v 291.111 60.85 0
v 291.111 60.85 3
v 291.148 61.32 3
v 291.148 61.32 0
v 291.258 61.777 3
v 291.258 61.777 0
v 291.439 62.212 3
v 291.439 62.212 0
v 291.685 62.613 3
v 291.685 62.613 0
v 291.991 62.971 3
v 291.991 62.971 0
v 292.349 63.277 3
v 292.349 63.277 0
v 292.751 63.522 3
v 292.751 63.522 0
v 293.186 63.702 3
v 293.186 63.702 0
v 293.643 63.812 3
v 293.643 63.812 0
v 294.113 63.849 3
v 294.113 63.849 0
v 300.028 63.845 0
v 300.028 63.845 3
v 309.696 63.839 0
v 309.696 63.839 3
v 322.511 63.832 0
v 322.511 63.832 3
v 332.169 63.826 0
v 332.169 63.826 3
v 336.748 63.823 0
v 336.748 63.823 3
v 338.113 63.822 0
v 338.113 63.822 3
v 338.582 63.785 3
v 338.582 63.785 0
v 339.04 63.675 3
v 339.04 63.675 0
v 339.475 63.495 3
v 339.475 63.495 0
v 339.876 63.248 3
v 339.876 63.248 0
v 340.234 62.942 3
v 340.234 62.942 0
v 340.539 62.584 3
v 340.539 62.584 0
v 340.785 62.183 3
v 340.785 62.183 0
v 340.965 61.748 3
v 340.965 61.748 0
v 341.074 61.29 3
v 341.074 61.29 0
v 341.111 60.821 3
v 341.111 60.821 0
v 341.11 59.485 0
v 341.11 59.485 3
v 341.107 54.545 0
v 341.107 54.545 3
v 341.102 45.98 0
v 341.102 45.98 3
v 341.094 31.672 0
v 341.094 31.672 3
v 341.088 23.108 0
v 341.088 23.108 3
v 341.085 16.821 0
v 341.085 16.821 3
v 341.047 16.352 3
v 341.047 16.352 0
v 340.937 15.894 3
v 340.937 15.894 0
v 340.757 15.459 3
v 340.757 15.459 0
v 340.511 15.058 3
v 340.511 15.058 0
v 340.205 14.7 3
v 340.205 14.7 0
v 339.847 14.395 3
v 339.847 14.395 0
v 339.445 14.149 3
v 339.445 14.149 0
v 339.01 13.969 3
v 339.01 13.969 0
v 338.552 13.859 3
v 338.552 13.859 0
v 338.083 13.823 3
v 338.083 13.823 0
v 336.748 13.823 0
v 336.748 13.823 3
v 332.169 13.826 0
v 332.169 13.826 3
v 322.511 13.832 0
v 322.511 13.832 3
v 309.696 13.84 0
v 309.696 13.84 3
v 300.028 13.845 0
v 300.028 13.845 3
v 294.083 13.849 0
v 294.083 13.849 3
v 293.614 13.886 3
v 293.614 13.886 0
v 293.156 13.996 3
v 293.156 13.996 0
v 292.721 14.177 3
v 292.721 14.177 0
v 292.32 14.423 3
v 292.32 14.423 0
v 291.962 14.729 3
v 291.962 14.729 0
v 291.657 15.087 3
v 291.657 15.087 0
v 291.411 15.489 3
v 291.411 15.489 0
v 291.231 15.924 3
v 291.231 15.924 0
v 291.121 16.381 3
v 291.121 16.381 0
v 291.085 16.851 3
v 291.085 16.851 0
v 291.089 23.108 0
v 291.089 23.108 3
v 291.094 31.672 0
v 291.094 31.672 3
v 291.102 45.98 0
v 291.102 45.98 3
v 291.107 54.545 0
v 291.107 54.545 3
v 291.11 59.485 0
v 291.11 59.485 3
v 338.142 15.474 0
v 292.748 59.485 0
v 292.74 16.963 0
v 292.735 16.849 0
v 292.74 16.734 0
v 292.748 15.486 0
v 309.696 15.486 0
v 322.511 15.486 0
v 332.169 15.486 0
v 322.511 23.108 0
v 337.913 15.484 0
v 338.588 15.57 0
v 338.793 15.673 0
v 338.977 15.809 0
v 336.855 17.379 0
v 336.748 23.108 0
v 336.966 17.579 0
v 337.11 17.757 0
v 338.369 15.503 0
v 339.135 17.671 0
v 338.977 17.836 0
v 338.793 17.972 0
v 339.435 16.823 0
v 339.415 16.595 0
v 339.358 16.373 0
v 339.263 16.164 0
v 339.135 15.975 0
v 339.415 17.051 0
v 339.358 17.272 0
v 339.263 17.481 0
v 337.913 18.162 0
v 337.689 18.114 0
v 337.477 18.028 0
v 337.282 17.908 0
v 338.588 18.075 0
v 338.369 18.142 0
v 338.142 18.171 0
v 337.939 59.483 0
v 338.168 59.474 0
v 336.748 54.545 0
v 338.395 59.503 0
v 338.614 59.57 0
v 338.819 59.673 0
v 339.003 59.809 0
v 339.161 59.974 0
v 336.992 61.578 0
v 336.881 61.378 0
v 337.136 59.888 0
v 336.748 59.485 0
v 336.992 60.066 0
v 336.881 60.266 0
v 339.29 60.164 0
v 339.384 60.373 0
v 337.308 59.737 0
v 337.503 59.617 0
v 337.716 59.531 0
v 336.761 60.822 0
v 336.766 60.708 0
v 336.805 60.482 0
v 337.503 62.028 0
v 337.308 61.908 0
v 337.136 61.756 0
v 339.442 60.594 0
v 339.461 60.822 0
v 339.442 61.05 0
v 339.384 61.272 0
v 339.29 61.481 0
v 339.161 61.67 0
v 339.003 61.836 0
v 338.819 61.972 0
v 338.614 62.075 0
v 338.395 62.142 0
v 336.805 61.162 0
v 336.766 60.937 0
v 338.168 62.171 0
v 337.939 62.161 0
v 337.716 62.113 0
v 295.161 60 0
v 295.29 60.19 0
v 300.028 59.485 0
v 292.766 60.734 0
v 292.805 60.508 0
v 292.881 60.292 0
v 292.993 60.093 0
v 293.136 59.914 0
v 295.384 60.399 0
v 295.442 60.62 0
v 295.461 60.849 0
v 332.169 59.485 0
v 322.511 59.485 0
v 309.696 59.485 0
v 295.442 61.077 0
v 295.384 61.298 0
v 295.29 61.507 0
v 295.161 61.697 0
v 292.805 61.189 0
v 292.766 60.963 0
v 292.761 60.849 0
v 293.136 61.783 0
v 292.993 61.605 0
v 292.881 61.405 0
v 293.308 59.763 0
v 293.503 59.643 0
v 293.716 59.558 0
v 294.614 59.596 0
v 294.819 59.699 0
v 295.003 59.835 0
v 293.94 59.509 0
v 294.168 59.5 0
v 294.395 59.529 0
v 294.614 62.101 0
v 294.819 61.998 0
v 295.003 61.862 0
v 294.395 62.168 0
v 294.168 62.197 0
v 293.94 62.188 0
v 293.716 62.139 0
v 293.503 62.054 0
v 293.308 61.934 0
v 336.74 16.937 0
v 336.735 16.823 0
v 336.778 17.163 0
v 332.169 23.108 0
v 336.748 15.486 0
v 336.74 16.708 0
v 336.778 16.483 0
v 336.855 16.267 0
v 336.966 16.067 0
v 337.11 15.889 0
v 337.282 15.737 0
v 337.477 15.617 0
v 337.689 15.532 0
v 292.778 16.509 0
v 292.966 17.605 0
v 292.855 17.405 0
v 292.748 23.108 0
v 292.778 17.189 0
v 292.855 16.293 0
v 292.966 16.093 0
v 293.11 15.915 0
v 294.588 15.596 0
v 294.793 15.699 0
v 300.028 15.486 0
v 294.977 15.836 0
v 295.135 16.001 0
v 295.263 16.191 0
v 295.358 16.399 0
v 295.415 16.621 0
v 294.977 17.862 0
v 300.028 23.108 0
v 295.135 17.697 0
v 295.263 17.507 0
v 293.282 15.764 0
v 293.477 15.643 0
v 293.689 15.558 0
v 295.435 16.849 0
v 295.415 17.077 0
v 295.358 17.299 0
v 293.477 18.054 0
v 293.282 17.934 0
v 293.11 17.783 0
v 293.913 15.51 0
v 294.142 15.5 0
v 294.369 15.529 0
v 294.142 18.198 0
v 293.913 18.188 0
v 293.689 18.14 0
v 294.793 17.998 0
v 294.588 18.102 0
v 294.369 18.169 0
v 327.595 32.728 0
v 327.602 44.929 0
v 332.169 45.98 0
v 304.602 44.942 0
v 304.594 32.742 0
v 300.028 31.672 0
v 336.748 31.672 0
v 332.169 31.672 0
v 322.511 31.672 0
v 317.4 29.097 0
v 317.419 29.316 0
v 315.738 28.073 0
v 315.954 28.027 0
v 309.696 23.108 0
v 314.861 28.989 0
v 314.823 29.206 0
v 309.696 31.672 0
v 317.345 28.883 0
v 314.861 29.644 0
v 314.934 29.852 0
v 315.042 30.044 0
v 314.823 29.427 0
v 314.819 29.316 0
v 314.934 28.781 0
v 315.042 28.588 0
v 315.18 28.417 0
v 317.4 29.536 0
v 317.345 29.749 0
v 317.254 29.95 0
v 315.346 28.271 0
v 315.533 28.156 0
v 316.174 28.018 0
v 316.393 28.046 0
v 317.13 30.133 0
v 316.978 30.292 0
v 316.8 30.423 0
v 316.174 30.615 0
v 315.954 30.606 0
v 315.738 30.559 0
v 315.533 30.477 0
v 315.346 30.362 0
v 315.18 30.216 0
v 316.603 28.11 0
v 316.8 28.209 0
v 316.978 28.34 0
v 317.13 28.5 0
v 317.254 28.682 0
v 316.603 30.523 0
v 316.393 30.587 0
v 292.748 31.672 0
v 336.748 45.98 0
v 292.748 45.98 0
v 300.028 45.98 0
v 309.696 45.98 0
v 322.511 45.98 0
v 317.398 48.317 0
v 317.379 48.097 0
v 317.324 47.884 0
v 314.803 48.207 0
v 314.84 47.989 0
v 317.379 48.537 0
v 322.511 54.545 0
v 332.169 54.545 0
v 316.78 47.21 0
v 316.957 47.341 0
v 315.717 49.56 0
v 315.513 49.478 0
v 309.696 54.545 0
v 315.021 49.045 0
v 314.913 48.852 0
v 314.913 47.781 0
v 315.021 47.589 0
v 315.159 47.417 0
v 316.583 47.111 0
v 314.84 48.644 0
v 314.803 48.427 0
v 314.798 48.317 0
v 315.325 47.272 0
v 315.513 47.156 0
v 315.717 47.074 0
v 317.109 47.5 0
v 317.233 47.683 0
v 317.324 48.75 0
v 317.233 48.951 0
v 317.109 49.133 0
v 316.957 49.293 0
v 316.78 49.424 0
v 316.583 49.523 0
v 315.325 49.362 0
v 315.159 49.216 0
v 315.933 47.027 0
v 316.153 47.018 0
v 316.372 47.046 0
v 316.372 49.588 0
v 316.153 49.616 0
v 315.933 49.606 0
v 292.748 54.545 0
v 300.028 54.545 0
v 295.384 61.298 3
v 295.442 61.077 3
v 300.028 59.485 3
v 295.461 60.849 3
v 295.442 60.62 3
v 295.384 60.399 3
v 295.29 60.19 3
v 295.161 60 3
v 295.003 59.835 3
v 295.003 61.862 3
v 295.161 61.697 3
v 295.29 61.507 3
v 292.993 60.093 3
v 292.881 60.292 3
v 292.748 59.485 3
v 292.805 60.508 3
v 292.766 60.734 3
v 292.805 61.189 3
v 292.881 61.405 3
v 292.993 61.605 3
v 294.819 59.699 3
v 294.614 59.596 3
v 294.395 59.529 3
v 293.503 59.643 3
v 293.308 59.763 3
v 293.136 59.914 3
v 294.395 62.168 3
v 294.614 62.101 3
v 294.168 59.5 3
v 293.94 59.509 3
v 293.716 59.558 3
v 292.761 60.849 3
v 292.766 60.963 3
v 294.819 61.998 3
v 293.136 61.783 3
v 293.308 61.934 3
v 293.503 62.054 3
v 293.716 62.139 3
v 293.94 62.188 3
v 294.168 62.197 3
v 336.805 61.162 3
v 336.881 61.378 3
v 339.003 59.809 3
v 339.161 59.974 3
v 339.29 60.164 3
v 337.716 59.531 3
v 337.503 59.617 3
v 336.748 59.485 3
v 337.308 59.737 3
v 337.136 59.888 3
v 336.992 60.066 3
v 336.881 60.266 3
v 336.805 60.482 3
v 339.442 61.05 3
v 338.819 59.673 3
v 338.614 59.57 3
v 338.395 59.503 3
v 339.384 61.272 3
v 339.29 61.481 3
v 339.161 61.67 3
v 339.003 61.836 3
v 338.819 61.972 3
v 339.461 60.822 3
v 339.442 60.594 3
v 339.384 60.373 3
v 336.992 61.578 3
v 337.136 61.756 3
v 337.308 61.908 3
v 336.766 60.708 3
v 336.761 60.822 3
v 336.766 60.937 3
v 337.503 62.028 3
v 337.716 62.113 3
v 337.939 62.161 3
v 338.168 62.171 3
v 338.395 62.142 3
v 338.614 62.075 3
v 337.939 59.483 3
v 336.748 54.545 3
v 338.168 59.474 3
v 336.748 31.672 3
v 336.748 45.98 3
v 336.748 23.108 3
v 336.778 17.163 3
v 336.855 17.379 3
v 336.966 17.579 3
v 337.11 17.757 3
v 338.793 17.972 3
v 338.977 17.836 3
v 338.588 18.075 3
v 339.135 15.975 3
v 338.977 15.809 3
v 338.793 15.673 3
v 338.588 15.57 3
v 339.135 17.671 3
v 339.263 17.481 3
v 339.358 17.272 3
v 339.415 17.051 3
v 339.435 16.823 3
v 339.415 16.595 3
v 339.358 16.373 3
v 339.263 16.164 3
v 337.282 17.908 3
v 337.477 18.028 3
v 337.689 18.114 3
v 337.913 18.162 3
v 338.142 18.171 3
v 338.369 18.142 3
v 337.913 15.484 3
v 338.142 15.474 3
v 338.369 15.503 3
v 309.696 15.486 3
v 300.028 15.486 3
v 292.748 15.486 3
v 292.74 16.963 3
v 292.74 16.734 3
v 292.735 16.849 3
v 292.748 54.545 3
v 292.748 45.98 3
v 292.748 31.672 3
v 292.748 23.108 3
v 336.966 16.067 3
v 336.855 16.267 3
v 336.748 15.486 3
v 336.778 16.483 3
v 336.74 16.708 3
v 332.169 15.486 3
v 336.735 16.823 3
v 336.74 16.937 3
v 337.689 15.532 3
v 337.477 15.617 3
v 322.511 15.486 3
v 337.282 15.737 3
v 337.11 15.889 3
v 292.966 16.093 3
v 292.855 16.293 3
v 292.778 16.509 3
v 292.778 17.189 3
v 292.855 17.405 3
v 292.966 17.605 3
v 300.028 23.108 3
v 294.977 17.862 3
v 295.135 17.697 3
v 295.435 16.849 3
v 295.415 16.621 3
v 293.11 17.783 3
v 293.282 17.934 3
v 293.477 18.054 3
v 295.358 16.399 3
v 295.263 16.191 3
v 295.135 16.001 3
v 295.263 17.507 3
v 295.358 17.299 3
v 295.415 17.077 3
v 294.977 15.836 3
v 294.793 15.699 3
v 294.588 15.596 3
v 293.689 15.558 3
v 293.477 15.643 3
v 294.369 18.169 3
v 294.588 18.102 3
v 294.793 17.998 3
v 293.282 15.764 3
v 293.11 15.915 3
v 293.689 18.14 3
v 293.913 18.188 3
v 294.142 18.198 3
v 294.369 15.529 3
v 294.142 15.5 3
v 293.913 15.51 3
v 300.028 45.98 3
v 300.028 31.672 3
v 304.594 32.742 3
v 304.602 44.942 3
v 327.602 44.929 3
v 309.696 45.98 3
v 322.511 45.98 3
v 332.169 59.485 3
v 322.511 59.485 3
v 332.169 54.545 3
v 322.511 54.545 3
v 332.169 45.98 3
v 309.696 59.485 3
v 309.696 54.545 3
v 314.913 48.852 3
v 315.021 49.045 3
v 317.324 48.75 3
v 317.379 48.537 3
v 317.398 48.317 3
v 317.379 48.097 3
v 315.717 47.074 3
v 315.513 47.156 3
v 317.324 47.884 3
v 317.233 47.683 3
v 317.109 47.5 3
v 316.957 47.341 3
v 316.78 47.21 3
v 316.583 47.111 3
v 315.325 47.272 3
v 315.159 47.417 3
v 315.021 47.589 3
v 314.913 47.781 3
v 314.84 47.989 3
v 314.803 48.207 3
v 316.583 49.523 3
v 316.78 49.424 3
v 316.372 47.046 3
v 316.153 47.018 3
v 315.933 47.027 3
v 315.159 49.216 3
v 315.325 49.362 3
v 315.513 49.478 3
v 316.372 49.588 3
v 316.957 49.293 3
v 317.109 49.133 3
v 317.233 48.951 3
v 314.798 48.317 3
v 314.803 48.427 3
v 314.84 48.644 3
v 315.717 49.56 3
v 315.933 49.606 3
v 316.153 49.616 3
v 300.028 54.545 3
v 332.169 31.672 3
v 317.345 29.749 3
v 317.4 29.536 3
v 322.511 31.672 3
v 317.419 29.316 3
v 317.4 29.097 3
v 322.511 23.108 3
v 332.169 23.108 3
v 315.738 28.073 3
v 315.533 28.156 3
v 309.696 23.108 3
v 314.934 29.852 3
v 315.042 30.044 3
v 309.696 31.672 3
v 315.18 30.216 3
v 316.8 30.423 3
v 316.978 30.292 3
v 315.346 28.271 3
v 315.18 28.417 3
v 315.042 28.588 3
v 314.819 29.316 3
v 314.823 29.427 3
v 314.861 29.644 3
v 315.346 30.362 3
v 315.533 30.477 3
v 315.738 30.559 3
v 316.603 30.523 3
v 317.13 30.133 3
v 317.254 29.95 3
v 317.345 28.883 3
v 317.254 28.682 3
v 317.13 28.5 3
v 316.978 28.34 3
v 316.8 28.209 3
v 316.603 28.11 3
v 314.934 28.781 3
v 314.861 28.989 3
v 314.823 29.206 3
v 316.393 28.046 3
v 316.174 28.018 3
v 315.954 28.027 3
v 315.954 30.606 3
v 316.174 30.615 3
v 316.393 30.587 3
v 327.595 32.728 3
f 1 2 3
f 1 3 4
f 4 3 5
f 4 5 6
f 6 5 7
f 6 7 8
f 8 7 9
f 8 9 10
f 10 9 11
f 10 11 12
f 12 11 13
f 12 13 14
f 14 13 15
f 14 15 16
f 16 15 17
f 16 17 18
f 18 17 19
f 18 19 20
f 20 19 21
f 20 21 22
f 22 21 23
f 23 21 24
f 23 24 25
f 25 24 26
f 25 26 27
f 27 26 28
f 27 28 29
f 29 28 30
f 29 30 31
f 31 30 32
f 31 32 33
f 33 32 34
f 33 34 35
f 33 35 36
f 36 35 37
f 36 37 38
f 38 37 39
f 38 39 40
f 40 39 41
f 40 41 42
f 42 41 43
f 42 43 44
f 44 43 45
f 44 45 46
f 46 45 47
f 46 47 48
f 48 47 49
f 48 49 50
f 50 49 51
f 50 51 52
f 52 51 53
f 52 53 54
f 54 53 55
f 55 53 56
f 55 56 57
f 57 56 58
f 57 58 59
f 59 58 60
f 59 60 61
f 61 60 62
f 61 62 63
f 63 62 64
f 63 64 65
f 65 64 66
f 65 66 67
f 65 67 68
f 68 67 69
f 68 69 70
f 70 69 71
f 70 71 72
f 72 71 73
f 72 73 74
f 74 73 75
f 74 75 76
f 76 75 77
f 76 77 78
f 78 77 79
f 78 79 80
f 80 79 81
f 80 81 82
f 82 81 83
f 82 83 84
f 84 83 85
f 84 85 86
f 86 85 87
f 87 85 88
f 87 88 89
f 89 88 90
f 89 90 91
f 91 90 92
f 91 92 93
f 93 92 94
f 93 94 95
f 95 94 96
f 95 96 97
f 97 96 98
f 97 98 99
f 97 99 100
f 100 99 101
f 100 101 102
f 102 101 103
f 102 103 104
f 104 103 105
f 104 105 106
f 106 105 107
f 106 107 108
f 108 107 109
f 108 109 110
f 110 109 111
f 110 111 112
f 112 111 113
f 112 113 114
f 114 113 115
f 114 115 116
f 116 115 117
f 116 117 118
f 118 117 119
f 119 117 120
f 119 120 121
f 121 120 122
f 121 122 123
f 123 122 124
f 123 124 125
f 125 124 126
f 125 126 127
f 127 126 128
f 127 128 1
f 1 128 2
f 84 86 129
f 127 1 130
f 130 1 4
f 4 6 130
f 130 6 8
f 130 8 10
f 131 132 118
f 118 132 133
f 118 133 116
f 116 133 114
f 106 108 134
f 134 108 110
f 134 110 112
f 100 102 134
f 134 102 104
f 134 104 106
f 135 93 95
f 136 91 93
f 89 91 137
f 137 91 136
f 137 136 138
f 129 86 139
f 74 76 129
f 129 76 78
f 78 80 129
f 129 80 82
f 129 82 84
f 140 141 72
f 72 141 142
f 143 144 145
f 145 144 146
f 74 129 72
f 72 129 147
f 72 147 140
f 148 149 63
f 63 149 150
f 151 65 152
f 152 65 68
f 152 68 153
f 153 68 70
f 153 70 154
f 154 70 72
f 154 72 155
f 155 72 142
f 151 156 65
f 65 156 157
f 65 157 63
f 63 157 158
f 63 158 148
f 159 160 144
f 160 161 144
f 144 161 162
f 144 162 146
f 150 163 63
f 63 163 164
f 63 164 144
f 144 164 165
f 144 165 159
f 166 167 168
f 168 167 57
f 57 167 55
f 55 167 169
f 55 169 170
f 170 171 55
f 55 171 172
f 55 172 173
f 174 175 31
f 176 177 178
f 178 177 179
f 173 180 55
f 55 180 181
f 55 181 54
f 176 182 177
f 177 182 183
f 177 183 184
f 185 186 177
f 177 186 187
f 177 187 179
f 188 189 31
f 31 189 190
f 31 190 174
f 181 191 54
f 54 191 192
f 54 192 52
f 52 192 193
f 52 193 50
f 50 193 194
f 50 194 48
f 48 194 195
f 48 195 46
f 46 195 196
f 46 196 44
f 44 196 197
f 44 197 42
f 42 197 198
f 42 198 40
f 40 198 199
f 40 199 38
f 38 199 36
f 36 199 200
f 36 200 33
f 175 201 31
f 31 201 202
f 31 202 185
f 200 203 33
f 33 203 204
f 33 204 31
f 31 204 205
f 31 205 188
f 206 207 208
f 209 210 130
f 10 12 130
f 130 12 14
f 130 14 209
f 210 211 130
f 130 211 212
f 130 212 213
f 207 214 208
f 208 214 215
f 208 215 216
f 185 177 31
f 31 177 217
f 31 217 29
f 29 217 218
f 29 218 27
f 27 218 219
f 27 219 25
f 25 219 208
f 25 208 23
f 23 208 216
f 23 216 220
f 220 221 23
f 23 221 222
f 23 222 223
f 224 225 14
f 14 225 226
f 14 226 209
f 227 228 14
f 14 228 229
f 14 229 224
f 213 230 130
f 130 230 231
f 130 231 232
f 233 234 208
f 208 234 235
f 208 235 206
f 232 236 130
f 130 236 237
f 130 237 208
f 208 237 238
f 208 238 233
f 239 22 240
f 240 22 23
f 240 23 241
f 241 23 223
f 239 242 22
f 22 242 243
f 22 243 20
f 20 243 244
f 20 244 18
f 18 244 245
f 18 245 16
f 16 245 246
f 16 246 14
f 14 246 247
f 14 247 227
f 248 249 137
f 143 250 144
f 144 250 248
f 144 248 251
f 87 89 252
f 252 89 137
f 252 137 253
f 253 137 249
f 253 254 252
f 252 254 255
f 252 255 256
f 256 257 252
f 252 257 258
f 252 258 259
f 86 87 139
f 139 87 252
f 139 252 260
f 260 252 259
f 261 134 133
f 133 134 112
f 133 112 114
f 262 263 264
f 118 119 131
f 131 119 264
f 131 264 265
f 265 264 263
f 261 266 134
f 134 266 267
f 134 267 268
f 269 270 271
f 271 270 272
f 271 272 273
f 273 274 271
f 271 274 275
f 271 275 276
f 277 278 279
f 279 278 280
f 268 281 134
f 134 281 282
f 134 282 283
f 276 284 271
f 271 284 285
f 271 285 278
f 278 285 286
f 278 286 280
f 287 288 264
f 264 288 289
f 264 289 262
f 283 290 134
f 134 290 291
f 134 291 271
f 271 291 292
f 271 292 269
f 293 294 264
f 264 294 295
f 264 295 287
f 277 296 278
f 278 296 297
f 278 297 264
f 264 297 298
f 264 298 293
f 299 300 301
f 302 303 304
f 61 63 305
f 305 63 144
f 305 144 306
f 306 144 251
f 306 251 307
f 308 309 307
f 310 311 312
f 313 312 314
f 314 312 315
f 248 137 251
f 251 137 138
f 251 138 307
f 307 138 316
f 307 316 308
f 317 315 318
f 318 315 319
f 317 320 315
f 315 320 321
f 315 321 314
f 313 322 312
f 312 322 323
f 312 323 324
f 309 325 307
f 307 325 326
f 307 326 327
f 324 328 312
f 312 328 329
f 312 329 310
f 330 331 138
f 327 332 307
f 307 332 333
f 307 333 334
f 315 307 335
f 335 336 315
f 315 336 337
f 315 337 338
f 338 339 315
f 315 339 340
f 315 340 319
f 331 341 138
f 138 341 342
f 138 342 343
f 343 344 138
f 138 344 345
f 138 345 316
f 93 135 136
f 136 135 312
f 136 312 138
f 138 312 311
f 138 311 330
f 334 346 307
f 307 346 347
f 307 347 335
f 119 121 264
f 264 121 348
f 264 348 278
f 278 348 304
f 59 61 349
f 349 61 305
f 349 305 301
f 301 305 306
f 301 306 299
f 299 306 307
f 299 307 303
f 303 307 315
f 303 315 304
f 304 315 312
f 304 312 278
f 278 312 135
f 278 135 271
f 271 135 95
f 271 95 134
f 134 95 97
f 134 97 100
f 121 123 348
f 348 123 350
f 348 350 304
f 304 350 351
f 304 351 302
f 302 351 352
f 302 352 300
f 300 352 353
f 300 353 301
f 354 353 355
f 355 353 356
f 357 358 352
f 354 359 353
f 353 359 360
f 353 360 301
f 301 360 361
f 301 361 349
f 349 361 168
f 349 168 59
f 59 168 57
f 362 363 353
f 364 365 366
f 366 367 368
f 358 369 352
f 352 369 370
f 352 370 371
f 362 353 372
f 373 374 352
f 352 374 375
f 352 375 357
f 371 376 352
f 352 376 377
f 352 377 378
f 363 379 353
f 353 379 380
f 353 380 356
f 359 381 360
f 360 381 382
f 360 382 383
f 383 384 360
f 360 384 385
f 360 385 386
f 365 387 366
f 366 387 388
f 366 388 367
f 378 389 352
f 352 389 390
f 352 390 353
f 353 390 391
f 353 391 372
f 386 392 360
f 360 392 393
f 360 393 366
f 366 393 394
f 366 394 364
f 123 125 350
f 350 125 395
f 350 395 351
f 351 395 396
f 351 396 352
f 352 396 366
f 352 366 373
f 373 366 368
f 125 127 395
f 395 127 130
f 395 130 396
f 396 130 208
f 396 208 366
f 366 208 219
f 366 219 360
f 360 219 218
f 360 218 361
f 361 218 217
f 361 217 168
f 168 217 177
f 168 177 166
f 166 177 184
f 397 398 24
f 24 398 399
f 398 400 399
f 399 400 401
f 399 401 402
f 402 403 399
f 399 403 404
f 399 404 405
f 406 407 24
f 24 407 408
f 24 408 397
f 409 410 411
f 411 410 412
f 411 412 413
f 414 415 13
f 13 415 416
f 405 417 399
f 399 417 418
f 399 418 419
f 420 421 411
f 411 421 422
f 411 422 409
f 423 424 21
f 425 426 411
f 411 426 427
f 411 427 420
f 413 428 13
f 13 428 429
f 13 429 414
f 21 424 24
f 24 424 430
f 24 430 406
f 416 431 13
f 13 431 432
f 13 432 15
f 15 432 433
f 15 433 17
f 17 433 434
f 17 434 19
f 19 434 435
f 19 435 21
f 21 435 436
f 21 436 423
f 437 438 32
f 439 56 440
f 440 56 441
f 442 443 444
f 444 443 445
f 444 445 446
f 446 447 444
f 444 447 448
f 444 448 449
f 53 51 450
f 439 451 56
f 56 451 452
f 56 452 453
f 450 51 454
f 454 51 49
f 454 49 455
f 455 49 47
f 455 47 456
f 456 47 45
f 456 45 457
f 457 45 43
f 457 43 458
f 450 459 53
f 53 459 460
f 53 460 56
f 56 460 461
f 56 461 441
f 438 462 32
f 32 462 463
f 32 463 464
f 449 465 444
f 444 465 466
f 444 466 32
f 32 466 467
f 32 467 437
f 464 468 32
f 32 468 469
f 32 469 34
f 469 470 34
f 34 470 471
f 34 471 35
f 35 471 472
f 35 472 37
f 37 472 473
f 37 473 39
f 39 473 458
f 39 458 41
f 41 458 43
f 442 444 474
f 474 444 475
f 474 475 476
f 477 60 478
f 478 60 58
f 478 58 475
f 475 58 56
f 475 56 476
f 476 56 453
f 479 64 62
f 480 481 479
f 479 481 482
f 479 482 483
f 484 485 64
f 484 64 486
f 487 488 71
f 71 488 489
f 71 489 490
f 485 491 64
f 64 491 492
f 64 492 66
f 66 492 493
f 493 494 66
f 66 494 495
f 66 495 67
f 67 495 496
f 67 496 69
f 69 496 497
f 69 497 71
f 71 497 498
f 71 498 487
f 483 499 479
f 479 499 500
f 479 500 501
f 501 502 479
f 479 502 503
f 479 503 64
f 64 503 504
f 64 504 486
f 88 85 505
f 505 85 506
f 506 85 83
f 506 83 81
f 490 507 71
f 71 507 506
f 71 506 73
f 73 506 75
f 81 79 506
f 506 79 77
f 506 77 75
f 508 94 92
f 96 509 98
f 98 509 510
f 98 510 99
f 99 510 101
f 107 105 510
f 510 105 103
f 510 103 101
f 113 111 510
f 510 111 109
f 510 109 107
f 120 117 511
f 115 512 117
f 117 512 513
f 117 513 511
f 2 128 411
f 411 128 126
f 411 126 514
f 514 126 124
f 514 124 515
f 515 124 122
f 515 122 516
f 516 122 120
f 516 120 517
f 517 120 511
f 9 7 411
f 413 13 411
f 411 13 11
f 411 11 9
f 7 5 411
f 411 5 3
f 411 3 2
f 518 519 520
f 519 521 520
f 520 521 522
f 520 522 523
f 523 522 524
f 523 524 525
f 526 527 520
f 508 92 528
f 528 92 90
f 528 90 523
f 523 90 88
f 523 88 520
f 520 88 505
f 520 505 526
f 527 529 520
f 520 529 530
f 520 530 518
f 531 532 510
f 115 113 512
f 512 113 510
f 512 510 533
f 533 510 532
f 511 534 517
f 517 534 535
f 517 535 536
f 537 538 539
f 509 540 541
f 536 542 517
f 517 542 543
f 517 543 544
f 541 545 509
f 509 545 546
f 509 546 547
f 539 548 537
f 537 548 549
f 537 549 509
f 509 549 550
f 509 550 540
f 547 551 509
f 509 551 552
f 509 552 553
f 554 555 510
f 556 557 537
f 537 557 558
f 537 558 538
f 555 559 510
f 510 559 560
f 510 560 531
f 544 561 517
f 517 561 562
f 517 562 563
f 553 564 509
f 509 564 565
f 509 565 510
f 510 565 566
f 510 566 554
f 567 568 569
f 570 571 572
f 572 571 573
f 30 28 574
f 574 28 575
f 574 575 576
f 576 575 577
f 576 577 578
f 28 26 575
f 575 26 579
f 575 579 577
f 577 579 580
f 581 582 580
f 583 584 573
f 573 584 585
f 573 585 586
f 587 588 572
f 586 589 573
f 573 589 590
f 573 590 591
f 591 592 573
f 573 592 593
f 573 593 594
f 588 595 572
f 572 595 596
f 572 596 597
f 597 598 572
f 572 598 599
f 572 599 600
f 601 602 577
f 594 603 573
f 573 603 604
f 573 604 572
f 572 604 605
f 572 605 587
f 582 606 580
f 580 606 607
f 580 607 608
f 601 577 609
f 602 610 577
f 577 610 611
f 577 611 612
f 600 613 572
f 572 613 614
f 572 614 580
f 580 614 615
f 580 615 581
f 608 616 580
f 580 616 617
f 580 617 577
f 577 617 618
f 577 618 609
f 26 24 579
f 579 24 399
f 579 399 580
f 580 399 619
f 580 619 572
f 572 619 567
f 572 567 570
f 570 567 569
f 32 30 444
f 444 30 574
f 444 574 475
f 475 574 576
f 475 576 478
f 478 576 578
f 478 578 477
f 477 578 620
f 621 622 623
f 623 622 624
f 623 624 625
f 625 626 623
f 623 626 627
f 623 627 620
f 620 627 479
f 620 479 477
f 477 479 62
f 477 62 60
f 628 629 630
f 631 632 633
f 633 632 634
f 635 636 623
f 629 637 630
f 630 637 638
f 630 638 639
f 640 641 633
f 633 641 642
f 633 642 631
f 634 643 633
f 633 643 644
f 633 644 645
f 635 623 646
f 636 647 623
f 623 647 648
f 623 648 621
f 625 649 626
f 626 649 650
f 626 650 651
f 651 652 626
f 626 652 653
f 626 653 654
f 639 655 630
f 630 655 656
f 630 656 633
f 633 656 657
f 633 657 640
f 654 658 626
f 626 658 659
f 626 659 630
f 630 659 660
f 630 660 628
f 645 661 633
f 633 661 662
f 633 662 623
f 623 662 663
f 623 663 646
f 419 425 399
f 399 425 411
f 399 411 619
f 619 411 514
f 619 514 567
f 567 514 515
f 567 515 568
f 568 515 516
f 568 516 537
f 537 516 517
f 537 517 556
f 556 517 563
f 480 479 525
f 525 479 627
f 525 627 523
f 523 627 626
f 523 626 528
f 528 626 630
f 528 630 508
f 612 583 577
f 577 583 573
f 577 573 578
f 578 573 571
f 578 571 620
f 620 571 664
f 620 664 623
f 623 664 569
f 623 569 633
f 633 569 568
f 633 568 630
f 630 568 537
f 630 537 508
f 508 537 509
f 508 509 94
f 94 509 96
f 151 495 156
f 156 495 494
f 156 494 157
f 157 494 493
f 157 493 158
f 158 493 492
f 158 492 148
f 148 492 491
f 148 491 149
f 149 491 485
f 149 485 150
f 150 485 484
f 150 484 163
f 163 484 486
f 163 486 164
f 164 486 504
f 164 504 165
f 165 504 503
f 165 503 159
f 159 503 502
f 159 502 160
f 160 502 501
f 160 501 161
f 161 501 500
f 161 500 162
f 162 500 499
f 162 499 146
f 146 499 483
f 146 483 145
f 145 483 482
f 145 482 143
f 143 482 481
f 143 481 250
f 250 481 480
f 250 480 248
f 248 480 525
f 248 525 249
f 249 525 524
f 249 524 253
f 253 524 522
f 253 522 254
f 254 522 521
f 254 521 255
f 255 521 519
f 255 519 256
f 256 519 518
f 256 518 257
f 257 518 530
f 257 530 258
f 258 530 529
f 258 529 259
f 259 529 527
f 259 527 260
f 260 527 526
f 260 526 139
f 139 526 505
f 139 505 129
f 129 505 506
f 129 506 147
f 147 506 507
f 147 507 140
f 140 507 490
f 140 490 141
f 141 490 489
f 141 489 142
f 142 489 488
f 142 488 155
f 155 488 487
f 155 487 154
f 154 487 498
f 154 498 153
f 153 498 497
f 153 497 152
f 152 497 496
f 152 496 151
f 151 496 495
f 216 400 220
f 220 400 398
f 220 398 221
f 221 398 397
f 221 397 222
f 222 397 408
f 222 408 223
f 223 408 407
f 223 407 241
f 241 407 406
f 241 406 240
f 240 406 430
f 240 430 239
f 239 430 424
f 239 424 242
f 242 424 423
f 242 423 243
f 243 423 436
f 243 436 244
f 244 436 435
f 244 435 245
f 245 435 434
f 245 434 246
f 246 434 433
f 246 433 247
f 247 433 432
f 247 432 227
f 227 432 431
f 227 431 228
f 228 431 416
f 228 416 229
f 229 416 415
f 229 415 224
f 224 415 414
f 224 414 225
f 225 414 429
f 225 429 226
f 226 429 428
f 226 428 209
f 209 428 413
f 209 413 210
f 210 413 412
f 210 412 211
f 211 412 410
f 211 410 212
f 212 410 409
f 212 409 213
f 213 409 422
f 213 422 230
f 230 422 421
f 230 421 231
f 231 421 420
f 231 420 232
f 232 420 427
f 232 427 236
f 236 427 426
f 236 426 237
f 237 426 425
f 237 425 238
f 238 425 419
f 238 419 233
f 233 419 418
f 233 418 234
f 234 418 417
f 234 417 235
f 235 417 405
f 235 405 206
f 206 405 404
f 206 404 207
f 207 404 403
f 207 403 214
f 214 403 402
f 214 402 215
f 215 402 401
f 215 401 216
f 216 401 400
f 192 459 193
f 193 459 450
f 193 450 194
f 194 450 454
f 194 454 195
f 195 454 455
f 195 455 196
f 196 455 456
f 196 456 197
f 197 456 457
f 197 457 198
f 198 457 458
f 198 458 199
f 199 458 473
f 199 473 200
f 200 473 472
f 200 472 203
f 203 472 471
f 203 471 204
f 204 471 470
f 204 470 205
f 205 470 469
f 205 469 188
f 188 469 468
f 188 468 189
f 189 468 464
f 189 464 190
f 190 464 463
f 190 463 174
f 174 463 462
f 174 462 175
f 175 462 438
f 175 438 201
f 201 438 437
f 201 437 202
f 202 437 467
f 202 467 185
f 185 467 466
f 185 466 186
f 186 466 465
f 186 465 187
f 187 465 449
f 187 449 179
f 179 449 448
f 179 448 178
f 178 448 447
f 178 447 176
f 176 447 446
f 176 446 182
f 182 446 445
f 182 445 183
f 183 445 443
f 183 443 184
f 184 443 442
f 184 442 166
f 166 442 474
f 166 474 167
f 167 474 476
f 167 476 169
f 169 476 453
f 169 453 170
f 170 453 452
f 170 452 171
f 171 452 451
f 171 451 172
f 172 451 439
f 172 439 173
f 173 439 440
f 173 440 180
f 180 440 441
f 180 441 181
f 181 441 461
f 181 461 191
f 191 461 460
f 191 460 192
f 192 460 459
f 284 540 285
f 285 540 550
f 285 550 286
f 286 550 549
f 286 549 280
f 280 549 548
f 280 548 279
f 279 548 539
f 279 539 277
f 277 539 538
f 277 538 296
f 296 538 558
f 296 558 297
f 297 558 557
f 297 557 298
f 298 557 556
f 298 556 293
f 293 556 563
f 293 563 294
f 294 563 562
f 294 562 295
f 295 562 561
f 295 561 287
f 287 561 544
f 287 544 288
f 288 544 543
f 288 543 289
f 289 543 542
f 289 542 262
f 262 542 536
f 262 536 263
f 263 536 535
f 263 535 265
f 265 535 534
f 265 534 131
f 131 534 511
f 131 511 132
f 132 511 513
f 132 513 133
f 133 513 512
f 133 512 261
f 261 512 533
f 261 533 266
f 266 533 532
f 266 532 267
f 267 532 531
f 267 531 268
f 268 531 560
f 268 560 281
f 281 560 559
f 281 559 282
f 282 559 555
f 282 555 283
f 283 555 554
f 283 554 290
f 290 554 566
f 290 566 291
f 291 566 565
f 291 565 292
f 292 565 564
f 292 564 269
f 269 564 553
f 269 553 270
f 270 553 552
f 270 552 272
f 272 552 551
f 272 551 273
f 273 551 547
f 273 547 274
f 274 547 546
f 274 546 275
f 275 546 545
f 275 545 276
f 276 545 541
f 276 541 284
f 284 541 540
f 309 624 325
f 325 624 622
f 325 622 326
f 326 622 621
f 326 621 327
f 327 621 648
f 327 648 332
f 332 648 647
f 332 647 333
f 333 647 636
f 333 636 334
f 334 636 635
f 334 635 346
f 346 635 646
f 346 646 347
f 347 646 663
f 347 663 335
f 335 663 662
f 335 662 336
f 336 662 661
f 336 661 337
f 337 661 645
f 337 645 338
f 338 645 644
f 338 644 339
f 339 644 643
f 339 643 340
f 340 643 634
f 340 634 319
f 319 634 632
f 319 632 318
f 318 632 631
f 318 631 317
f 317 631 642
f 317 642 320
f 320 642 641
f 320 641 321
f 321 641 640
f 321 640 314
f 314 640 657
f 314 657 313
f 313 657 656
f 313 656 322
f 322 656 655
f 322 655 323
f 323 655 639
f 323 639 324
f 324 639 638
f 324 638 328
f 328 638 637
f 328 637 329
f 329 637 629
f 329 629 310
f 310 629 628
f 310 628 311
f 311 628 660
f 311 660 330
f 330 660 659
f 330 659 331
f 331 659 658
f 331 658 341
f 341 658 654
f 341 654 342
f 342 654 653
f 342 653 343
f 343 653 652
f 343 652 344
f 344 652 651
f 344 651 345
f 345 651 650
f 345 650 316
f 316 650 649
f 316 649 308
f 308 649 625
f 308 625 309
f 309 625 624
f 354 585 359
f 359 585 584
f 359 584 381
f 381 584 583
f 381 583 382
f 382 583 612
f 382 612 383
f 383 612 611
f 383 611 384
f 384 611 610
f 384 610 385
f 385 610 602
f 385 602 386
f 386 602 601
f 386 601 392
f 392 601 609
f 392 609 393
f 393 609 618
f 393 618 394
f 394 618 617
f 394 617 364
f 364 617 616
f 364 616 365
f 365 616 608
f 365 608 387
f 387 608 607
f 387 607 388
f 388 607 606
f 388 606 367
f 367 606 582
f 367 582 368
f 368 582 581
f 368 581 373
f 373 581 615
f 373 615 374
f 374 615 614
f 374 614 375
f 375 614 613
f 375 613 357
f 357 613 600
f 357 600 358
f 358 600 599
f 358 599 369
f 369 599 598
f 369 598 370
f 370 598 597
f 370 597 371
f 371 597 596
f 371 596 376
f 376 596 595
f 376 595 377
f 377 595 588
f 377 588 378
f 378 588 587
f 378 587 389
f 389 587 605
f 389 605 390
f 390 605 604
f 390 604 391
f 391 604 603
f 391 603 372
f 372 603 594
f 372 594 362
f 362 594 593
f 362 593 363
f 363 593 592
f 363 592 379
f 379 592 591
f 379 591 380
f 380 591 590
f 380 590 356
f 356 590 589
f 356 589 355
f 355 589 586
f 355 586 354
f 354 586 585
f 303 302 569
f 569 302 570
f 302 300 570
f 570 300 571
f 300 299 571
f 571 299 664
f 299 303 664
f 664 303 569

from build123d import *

# Parameters (mm, degrees)
SKETCH_1_R      = 1.35
SKETCH_1_R_2    = 1.3
EXTRUDE_1_DEPTH = 3


with BuildPart() as part:
    # 草图1 → 凸台-拉伸1 (new body)
    with BuildSketch(Plane.XY.offset(3)):
        with BuildLine():
            Line((291.111009591, 60.850346254), (291.08477602, 16.850708535))
            ThreePointArc((291.08477602, 16.850708535), (291.962190742, 14.728864681), (294.08298682, 13.848920402))
            Line((294.08298682, 13.848920402), (338.082927985, 13.82268665))
            ThreePointArc((338.082927985, 13.82268665), (340.20477184, 14.700101372), (341.084716119, 16.82089745))
            Line((341.084716119, 16.82089745), (341.11094969, 60.820535169))
            ThreePointArc((341.11094969, 60.820535169), (340.233534968, 62.942379024), (338.11273889, 63.822323303))
            Line((338.11273889, 63.822323303), (294.112797724, 63.848557054))
            ThreePointArc((294.112797724, 63.848557054), (291.990953869, 62.971142333), (291.111009591, 60.850346254))
        make_face()
        with Locations(Location((338.084716652, 16.822686117, 0), (0, 0, 180))):
            Circle(SKETCH_1_R, mode=Mode.SUBTRACT)
        with Locations(Location((294.111009057, 60.848557587, 0), (0, 0, 180))):
            Circle(SKETCH_1_R, mode=Mode.SUBTRACT)
        with Locations(Location((338.110950223, 60.822323836, 0), (0, 0, 180))):
            Circle(SKETCH_1_R, mode=Mode.SUBTRACT)
        with Locations(Location((294.084775487, 16.848919869, 0), (0, 0, 180))):
            Circle(SKETCH_1_R, mode=Mode.SUBTRACT)
        with Locations(Location((316.118760947, 29.316353397, 0), (0, 0, 180))):
            Circle(SKETCH_1_R_2, mode=Mode.SUBTRACT)
        with Locations(Location((316.098042718, 48.316807582, 0), (0, 0, 180))):
            Circle(SKETCH_1_R_2, mode=Mode.SUBTRACT)
        Polygon((304.601683778, 44.942477784), (327.602382744, 44.928764251), (327.595108581, 32.728346323), (304.594409616, 32.742059855), align=None, mode=Mode.SUBTRACT)
    extrude(amount=-EXTRUDE_1_DEPTH)


solid = part.part
